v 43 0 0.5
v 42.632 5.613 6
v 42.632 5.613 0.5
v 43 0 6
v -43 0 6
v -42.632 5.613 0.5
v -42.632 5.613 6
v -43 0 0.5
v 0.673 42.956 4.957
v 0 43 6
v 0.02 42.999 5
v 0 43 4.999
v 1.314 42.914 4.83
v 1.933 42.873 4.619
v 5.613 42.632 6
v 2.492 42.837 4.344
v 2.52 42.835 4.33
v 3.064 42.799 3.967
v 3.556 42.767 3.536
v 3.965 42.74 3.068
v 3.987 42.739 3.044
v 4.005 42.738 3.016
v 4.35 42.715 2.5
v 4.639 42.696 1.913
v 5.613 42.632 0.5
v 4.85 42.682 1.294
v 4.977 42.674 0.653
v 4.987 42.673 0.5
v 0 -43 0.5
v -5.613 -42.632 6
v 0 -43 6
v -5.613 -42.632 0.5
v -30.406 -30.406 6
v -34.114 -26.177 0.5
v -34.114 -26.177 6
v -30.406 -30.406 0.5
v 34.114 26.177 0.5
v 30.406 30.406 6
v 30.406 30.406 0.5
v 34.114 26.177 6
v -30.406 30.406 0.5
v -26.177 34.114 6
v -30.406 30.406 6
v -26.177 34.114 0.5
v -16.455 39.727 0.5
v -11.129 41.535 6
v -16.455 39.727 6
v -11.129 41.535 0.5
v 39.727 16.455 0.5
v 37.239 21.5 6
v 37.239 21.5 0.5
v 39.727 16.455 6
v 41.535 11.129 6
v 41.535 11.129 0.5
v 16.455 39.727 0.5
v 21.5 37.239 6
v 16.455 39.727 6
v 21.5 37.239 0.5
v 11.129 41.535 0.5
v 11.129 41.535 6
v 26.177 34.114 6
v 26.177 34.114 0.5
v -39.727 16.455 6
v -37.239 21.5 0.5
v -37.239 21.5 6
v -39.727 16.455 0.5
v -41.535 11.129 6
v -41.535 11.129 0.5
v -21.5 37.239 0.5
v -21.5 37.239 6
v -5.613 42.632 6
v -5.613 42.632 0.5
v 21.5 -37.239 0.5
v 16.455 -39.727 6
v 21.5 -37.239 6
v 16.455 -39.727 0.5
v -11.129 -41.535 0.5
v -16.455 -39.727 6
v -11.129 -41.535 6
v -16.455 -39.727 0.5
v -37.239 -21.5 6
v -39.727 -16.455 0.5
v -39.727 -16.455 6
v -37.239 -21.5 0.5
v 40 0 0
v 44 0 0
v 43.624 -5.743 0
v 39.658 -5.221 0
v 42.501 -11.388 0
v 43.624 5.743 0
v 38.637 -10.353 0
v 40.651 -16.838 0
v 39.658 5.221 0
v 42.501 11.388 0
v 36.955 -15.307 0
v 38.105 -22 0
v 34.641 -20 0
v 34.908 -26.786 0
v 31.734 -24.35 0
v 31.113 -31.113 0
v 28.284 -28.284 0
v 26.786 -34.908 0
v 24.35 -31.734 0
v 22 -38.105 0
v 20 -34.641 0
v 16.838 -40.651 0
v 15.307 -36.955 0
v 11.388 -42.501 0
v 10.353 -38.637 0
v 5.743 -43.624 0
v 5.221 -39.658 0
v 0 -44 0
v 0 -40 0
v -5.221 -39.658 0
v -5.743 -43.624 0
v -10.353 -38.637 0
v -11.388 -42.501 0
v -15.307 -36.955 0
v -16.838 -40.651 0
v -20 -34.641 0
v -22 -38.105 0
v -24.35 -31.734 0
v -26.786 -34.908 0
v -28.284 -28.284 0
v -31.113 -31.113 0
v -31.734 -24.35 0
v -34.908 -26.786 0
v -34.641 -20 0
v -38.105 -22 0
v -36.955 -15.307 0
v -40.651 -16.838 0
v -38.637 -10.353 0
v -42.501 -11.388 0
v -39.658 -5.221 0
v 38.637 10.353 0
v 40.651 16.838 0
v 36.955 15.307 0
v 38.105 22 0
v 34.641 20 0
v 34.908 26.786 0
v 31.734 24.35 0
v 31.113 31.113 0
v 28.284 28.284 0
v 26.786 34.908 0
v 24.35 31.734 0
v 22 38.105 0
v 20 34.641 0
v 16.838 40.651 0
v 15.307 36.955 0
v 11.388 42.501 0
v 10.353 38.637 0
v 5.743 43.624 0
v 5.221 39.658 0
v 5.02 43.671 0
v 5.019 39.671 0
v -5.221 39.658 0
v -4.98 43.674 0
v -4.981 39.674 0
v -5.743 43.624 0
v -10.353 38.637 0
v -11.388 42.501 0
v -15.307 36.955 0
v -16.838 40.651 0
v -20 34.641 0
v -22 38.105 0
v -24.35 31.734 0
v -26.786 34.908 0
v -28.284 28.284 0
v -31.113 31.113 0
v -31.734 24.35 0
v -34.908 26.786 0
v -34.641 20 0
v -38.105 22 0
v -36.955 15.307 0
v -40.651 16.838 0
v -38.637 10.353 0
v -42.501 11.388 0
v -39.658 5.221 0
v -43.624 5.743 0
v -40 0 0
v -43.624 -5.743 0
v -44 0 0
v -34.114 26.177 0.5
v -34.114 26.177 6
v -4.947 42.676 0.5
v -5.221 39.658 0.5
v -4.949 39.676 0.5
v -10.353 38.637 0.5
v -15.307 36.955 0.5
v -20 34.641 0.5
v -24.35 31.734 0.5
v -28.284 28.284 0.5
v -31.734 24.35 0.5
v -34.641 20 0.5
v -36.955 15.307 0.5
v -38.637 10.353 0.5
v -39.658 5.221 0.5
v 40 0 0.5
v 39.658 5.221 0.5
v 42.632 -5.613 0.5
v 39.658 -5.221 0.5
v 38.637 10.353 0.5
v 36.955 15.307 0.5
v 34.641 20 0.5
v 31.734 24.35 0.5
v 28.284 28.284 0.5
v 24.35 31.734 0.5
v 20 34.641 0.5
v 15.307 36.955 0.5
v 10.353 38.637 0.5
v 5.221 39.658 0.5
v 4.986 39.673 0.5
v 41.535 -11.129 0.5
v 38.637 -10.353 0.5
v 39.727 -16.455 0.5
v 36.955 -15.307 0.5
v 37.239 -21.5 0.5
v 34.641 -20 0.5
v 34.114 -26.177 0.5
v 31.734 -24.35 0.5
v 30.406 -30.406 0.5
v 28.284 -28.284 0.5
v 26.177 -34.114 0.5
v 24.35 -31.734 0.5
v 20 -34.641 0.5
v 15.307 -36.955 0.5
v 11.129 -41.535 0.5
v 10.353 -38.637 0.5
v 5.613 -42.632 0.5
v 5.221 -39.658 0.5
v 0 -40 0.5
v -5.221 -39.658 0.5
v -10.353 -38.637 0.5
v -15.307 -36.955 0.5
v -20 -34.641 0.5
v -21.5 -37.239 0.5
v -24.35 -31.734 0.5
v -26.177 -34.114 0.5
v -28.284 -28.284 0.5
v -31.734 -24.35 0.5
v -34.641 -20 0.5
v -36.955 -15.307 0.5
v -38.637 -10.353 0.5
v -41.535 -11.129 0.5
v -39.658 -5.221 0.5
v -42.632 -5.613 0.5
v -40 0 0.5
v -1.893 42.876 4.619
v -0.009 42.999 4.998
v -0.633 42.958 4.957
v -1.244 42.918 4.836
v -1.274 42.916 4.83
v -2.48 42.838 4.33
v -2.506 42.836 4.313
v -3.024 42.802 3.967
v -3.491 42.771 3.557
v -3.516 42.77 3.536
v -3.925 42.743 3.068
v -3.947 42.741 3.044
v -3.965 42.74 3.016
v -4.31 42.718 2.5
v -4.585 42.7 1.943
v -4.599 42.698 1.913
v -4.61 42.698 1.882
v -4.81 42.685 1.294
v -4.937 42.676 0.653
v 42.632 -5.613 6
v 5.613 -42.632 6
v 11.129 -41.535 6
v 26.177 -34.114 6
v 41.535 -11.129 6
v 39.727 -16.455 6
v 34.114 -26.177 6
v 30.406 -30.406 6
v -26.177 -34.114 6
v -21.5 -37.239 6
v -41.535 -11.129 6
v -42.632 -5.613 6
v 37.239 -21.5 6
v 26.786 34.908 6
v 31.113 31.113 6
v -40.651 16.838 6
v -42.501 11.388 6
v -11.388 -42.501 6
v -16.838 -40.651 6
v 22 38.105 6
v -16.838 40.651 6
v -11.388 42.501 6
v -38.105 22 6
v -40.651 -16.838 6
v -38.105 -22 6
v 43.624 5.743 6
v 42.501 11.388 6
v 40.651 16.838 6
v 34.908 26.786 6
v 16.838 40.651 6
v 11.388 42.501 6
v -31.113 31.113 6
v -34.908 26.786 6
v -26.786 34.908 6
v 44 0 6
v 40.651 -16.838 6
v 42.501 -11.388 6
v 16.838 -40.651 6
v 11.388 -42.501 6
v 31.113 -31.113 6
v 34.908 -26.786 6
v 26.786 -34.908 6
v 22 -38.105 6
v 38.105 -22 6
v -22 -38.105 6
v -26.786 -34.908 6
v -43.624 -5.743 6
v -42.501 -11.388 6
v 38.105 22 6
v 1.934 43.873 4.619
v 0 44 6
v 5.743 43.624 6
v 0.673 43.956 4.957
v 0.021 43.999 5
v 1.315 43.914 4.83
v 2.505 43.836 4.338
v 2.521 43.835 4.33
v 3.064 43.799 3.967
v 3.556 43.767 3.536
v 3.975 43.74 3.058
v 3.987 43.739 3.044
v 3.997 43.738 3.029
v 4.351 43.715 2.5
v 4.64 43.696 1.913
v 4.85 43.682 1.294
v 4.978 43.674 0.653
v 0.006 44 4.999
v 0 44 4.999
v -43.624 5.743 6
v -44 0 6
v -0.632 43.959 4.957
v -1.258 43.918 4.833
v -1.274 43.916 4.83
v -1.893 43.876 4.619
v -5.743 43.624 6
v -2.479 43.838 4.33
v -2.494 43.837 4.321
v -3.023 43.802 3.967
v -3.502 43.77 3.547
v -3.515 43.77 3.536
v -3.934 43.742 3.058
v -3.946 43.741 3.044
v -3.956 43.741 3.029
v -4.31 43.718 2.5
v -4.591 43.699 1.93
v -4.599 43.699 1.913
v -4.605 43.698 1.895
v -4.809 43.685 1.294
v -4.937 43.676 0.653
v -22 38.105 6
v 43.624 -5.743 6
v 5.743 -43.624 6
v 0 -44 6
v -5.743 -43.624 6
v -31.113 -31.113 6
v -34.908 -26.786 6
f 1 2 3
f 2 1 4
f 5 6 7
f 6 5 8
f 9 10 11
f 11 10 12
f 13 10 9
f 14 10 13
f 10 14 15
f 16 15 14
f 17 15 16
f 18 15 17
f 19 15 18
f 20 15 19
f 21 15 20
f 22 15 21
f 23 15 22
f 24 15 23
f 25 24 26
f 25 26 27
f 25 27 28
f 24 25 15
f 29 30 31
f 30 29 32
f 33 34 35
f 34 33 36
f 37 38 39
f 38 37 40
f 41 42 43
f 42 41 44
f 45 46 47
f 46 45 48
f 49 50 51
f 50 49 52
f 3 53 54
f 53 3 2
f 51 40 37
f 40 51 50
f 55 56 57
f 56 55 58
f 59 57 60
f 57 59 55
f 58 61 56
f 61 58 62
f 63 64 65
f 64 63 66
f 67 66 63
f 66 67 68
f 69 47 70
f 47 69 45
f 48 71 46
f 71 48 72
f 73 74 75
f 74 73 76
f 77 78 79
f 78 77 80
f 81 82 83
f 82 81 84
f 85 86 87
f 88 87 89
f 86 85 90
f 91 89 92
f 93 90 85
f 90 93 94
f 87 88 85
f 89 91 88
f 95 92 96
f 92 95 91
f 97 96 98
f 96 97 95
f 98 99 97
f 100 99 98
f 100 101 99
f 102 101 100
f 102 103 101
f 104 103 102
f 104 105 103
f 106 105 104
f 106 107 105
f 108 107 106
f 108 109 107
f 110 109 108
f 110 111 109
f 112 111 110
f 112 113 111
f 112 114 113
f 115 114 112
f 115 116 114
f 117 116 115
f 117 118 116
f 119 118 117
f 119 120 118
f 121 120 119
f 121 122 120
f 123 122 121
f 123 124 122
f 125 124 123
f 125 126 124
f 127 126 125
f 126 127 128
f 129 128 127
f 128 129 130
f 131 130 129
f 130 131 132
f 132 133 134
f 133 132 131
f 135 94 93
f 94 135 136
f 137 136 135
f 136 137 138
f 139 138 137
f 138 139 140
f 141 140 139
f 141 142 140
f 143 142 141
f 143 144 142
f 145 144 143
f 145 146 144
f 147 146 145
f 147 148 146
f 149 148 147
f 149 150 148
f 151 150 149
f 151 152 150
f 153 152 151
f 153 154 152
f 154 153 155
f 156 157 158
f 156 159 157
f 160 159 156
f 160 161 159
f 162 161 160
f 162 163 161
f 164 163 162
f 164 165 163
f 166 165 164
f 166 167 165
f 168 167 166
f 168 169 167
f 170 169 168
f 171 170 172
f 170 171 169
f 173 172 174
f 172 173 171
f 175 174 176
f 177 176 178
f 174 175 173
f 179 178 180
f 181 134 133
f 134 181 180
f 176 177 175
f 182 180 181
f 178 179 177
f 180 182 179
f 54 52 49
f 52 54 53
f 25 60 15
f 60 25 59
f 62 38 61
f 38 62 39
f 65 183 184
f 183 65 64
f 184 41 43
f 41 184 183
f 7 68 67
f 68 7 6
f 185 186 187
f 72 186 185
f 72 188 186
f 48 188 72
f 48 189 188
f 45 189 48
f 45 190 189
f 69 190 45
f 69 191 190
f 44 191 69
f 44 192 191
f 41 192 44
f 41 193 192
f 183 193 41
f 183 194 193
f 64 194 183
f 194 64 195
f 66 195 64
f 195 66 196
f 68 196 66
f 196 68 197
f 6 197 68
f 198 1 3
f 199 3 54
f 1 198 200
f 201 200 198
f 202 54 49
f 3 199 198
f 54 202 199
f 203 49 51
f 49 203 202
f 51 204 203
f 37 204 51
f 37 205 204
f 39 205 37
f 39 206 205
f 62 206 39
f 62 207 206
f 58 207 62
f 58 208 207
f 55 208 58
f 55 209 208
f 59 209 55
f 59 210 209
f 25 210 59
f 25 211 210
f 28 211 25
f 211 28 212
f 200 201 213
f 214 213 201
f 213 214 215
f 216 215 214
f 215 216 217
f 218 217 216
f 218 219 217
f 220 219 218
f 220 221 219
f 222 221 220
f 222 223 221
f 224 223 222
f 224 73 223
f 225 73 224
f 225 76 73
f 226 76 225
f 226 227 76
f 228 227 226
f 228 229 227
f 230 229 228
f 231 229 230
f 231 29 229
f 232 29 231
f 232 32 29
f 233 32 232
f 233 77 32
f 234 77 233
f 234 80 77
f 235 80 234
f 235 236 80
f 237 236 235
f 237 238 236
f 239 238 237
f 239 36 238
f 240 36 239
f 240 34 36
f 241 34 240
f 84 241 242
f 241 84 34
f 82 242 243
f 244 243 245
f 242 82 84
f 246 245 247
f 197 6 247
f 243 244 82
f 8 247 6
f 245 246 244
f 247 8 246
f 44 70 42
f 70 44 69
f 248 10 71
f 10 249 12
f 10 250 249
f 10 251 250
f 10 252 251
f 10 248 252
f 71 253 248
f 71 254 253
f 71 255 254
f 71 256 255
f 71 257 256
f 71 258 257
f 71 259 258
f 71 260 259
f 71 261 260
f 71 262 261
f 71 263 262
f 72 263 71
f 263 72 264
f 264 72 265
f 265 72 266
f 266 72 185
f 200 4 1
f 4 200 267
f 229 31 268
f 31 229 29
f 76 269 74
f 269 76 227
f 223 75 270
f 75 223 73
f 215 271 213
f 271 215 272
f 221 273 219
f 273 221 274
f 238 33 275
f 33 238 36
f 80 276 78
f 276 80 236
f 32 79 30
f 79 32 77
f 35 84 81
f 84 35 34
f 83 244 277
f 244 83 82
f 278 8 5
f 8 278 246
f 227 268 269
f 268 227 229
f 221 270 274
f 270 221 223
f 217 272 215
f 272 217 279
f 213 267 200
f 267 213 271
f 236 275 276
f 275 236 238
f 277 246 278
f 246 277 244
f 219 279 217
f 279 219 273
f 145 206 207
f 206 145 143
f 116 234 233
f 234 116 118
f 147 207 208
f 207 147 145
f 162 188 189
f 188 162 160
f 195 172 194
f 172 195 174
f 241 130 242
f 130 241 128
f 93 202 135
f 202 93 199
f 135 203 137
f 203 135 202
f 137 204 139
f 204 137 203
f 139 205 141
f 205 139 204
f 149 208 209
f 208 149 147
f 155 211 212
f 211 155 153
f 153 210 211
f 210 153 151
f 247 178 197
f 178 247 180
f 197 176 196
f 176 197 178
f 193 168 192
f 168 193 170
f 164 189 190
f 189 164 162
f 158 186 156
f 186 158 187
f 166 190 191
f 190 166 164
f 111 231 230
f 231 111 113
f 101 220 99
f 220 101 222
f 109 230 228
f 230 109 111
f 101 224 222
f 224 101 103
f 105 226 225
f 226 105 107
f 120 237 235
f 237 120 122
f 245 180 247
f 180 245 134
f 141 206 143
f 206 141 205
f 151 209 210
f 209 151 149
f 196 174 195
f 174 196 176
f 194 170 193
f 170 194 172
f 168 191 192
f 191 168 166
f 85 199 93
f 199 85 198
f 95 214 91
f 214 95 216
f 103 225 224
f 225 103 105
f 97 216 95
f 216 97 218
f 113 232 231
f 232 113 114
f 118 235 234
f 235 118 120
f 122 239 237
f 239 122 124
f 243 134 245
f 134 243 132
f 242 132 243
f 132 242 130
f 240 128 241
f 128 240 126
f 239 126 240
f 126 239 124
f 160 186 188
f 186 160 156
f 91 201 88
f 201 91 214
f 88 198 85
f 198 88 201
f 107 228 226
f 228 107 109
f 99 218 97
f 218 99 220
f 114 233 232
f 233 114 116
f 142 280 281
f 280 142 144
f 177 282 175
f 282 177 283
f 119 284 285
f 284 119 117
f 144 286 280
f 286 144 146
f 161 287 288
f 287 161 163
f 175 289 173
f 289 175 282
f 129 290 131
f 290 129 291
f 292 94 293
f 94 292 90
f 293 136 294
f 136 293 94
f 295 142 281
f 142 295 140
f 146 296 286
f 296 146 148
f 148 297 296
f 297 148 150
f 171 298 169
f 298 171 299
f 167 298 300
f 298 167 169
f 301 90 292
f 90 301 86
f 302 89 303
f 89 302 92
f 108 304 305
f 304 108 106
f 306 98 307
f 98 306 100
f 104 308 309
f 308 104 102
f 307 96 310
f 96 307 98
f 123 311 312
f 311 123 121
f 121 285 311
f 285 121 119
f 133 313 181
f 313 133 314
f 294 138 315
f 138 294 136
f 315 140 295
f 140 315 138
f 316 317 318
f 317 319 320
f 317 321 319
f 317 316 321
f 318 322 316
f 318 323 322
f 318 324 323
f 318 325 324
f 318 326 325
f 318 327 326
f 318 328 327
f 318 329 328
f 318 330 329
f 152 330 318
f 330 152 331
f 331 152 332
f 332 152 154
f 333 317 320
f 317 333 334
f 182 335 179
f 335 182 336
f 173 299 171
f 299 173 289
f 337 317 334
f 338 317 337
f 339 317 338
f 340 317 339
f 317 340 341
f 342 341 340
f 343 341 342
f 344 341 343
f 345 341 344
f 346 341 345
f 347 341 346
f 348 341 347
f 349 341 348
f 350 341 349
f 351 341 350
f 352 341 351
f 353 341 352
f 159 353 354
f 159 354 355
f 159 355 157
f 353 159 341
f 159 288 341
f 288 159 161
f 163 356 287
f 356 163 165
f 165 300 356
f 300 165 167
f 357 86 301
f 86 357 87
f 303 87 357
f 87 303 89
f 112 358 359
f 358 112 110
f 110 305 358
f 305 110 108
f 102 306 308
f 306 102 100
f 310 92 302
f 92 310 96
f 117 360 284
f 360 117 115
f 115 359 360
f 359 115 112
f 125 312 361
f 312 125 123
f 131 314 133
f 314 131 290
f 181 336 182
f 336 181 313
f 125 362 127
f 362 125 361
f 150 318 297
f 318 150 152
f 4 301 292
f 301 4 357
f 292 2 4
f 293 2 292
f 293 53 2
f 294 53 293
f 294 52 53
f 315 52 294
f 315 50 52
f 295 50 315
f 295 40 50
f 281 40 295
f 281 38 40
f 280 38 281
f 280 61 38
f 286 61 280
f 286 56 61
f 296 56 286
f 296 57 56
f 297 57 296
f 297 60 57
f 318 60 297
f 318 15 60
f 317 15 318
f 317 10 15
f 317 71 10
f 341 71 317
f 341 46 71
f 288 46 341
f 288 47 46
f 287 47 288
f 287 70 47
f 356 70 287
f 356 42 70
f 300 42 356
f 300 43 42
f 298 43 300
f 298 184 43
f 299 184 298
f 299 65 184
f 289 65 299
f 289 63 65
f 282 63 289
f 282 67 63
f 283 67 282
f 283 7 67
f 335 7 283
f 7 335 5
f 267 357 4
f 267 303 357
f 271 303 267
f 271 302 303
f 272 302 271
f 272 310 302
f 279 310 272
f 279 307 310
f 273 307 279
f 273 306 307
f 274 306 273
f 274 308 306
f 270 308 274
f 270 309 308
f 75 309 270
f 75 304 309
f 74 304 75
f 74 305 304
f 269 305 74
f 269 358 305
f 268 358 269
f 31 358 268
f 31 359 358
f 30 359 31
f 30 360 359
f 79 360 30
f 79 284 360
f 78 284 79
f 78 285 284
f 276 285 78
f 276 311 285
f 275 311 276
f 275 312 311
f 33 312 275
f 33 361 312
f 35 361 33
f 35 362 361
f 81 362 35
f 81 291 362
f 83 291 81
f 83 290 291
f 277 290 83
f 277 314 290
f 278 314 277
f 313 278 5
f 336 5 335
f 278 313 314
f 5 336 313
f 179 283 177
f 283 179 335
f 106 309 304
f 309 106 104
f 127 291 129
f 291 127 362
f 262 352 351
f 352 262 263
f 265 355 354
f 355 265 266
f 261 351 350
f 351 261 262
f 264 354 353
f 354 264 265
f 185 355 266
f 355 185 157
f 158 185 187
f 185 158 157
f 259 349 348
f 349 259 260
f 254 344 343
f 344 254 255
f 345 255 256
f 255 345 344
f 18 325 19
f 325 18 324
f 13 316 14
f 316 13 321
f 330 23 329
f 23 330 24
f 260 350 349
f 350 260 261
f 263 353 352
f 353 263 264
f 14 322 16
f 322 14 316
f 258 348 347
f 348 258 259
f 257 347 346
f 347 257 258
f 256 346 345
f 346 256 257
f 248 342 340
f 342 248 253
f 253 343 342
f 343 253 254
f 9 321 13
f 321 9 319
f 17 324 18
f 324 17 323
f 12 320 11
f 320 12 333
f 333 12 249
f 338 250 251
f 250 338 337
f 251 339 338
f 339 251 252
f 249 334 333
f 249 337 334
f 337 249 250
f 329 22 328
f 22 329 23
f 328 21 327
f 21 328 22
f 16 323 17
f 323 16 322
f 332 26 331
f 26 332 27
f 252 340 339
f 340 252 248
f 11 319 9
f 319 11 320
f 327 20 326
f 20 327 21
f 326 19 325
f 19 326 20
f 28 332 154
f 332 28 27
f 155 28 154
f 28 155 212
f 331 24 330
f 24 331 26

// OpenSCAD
// file: ../build_environments.scad
// build_environments.scad: modules to build level sections
//

module pool(diameter=10.0, wall_height=2.0, step_width=3.0, connections=[])
{
    difference() {
        union() {
        difference() {
            cylinder(h=0.5,r1=diameter+step_width,r2=diameter+step_width,$fn=48);
            translate([0,0,-0.1])
                cylinder(h=0.7,r1=diameter,r2=diameter,$fn=48);
        }
        difference() {
            cylinder(h=wall_height,r1=diameter+step_width+1.0,r2=diameter+step_width+1.0,$fn=48);
            translate([0,0,-0.1])
                cylinder(h=wall_height+0.2,r1=diameter+step_width,r2=diameter+step_width,$fn=48);
        }
        }
    
        for (c = connections)
        {
            rotate([0,90,0]) {
                angle = atan2(c[1],c[0]);
                rotate([-angle,0,0]) {
                    cylinder(h=diameter+5.0,r1=c[2],r2=c[2],$fn=48);
                }
            }
        }
    }
}

module straight(length=10.0, width=2.0, dy1=0.0, dy2=0.0, dz=0.0)
{
    dims = [0, 0, 0, 0, 0, (dz/length)];
    matrix = [
        [ 1, dims[0], dims[1], 0 ],
        [ dims[2], 1, dims[4], 0 ],
        [ dims[5], dims[3], 1, 0 ],
        [ 0, 0, 0, 1 ]
    ];
    multmatrix(matrix)
    difference() {
        translate([dy1,0,0])
        union() {
            rotate([0,90,0]) {
                difference() {
                    cylinder(h=(length-dy1-dy2),r1=width+1.0,r2=width+1.0,$fn=24);
                    translate([0,0,-0.1])
                        cylinder(h=(length-dy1-dy2+0.2),r1=width,r2=width,$fn=24);
                }
                difference() {
                    cylinder(h=1.0,r1=width+2.0,r2=width+2.0,$fn=24);
                    translate([0,0,-0.1])
                        cylinder(h=1.2,r1=width,r2=width,$fn=24);
                }
                translate([0,0,(length-dy1-dy2)-1.0]) {
                    difference() {
                        cylinder(h=1.0,r1=width+2.0,r2=width+2.0,$fn=24);
                        translate([0,0,-0.1])
                            cylinder(h=1.2,r1=width,r2=width,$fn=24);
                    }
                }
            }
        }
        translate([0,0,-(2*width+4.0)/2])
            cube([3*length,3*length,2*width+4.0],center=true);
    }
}

module curve(p0=[0,0], center=[0,0], dir=1, angle=0.0, width=2.0)
{
    radius = sqrt((p0[0]-center[0])*(p0[0]-center[0]) + (p0[1]-center[1])*(p0[1]-center[1]));
    if (dir == 0) {
        difference() {
            rotate([0,0,-90])
            difference() {
                rotate_extrude(angle = angle, convexity = 10, $fn=32)
                    translate([radius, 0, 0])
                        circle(r = width+1.0,$fn=24);
                rotate([0,0,-1.0])
                    rotate_extrude(angle = angle+2.0, convexity = 10, $fn=32)
                        translate([radius, 0, 0])
                            circle(r = width,$fn=24);
            }
            translate([0,0,-(2*width+4.0)/2])
                cube([5*radius,5*radius,2*width+4.0],center=true);
        }
    }
    else {
        difference() {
            rotate([0,0,90])
            difference() {
                rotate_extrude(angle = -angle, convexity = 10, $fn=32)
                    translate([radius, 0, 0])
                        circle(r = width+1.0,$fn=24);
                rotate([0,0,1.0])
                    rotate_extrude(angle = -angle-2.0, convexity = 10, $fn=32)
                        translate([radius, 0, 0])
                            circle(r = width,$fn=24);
            }
            translate([0,0,-(2*width+4.0)/2])
                cube([5*radius,5*radius,2*width+4.0],center=true);
        }
    }

}

// test pool
//pool(diameter=12.0000, wall_height=3.0000, step_width=3.0000, connections=[[0.0000,-26.0000,2.0000], [23.6074,0.0000,2.0000]]);

// test straight, slope
//straight(length=26.0000, width=2.0000, dy1=11.8322, dy2=6.7082, dz=0.0000);
//straight(length=29.1549, width=12.0000, dy1=0.0000, dy2=0.0000, dz=-15.0000);

// test curve
//curve(p0=[23.6074, 0.0000], center=[23.6074, 5.0000], dir=0, angle=60.1011, width=2.0000);
//curve(p0=[33.6426, 12.4219], center=[37.9771, 9.9295], dir=1, angle=120.4627, width=2.0000);
// main file
use <../build_environments.scad>;
pool(diameter=40.0000, wall_height=6.0000, step_width=3.0000, connections=[[0.0239,51.0872,5.0000]]);
